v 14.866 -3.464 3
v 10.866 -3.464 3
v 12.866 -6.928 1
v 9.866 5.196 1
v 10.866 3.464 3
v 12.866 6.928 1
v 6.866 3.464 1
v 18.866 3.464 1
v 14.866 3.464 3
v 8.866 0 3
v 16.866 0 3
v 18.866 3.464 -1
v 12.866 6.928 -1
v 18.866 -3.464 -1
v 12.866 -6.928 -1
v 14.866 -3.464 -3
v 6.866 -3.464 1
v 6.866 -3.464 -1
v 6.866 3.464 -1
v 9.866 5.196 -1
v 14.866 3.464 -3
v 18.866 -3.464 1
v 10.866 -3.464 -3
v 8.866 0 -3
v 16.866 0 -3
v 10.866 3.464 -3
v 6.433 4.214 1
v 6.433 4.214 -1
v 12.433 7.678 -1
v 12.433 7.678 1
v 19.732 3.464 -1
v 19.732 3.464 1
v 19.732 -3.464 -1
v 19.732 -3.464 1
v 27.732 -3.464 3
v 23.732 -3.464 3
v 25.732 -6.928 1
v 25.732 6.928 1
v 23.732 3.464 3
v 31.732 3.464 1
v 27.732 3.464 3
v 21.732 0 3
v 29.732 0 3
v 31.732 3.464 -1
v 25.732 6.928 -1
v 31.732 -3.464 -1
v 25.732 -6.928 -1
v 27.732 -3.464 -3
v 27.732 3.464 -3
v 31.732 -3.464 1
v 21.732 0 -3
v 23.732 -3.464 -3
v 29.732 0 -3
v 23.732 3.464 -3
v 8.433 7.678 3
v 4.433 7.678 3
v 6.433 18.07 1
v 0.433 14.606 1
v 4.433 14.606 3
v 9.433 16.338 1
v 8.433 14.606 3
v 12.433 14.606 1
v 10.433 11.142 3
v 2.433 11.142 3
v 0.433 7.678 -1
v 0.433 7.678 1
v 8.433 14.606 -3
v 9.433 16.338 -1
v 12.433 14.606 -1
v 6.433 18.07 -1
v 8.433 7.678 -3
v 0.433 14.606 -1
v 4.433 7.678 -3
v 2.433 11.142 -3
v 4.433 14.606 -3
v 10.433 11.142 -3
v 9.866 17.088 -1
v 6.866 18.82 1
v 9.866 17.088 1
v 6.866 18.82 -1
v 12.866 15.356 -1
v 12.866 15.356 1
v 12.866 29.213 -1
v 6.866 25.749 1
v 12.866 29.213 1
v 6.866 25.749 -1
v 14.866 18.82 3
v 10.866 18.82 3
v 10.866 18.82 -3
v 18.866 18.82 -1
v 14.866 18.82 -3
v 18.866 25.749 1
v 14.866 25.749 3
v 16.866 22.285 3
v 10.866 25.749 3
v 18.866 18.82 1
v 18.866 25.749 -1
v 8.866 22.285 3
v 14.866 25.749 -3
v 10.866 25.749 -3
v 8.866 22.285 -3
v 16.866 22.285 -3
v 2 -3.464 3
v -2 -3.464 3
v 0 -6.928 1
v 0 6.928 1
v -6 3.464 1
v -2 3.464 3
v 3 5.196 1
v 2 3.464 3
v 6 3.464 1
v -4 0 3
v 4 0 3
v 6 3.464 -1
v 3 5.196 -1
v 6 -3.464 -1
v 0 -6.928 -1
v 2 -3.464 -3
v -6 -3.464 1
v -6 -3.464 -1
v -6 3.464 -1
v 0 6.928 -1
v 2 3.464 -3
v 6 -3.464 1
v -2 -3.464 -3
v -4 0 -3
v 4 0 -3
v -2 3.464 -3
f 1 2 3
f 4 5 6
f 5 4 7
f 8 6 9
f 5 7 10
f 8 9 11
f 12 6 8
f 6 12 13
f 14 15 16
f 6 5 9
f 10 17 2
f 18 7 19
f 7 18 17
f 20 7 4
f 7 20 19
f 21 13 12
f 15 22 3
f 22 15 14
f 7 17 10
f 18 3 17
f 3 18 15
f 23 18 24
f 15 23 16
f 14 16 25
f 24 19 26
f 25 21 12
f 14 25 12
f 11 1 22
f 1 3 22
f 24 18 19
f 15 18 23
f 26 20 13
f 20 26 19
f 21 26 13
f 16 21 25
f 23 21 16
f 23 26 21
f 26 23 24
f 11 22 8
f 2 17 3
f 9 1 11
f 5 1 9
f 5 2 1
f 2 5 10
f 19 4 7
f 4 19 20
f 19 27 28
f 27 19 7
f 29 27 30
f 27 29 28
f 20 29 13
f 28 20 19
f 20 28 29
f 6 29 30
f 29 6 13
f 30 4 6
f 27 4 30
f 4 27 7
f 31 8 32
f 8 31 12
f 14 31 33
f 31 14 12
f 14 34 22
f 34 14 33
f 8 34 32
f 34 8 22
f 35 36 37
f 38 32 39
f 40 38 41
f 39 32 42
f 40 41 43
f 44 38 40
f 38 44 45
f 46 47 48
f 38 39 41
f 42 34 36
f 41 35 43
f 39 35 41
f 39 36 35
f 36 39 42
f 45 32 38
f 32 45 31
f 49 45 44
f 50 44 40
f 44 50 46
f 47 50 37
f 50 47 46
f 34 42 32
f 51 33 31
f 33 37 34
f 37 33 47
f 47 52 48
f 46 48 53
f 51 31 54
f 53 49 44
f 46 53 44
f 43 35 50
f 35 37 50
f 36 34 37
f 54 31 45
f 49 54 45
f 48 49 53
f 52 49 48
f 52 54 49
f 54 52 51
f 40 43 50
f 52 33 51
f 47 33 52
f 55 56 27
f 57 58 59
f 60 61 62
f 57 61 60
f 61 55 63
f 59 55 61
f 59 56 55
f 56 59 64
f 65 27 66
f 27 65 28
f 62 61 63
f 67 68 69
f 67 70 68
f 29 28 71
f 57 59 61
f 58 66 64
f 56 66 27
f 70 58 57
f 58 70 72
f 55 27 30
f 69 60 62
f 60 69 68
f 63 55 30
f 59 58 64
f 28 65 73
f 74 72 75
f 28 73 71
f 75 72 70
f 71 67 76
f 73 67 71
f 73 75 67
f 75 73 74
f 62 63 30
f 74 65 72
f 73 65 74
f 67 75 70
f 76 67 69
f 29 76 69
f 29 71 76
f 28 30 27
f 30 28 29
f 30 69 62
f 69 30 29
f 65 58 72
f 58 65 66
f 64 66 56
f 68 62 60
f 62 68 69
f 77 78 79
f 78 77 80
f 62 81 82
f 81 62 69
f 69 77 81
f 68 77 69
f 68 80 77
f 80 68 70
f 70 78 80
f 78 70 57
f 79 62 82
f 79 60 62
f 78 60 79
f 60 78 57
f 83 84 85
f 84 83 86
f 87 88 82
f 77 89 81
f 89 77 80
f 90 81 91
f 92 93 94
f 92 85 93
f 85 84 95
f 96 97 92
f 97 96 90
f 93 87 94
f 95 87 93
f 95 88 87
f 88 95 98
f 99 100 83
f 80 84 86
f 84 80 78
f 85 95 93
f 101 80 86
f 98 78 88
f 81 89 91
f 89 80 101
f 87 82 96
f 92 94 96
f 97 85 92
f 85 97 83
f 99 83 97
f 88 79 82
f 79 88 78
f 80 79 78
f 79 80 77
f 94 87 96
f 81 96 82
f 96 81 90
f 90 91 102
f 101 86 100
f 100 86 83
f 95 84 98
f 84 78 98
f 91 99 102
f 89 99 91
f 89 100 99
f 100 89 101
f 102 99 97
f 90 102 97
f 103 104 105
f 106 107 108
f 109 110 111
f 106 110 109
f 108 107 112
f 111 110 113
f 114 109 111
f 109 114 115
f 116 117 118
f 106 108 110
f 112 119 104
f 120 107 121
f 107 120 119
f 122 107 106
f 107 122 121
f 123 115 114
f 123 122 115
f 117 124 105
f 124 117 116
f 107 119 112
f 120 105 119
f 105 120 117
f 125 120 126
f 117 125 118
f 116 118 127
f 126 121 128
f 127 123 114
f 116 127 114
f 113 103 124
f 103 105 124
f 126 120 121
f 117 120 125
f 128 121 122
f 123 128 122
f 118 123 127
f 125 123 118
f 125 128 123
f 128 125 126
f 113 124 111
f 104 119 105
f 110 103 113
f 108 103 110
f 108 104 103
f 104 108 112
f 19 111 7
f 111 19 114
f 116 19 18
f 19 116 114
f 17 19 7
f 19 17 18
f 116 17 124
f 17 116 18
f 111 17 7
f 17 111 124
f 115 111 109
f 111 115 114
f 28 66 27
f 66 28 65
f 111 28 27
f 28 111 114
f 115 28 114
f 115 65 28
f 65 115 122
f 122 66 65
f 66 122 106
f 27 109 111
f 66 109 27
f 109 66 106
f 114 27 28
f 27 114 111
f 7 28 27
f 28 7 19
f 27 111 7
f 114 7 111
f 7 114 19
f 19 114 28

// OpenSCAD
// file: gem-common.scad
angles = [for(i = [0:5]) i * (360 / 6)];

inner_poly_radius=8 * cos(60);
outer_poly_radius=8 * cos(30);
outer_poly_z=1;
inner_poly_z=3;


gap_between_gems = cos(30);
distance_to_corner = cos(30) * outer_poly_radius * 2 + gap_between_gems;


module edge_connector(angle = 0) {
    function make_point_2d(r, angle, height) = [r * sin(angle), height];
    
    points = [
        make_point_2d(outer_poly_radius, 30, outer_poly_z),
        make_point_2d(outer_poly_radius, -30, outer_poly_z),
        make_point_2d(outer_poly_radius, -30, -outer_poly_z),
        make_point_2d(outer_poly_radius, 30, -outer_poly_z),
    ];
    
    rotate([0,0,angle]) {
        translate([(distance_to_corner - gap_between_gems) / 2,0,0]){
            rotate([90, 0, 90]) {
                linear_extrude(gap_between_gems) {
                    polygon(points);
                }
            }
        }
    }
}

module move(distance, angle) {
    translate([distance * cos(angle), distance * sin(angle), 0]) {
        children();
    }
}


module corner_connector(angle=0) {
    r = 0.5;
    rotate_angle = angle + 30;
    move(outer_poly_radius + r, rotate_angle) {
        translate([0,0, -outer_poly_z]) {
            rotate([0,0,-rotate_angle]) {
                cylinder($fn=3, r=r, h=outer_poly_z * 2);
            }
        }
    }
}

module gem() {
    function make_point(r, angle, height) = [r * cos(angle), r * sin(angle), height];
    
    top_poly = [for(th = angles) make_point(inner_poly_radius, th, inner_poly_z)];
    top_outer_poly = [for(th = angles) make_point(outer_poly_radius, th + 30, outer_poly_z)];
    bottom_outer_poly = [for(th = angles) make_point(outer_poly_radius, th + 30, -outer_poly_z)];
    bottom_poly = [for(th = angles) make_point(inner_poly_radius, th, -inner_poly_z)];
 
    function rot(n, base) = (n + 1 - base) % 6 + base;
    
    faces = [
        [5, 4, 3, 2, 1, 0],
        for(i = [0:5]) [i, (i + 1) % 6, i + 6],
        for(i = [6:11]) [i, (i - 5) % 6, rot(i, 6)],
        for(i = [6:11]) [i, rot(i, 6), rot(i, 6) + 6, i + 6],
        for(i = [12:17]) [i, rot(i, 12), rot(i, 12) + 6],
        for(i = [18:23]) [i, i-6, rot(i, 18)],
        [18, 19, 20, 21, 22, 23],
    ];
    
    polyhedron(
        concat(
            top_poly,
            top_outer_poly,
            bottom_outer_poly,
            bottom_poly
        ),
        faces
    );
}
// main file
include <./gem-common.scad>

gem();
edge_connector();
edge_connector(60);
corner_connector();
move(distance_to_corner, 0) {
    gem();
    edge_connector(120);
    edge_connector(0);
    move(distance_to_corner, 0) {
        gem();
    }
}
move(distance_to_corner, 60) {
    gem();
    edge_connector(60);
    move(distance_to_corner, 60) {
        gem();
    }
}
